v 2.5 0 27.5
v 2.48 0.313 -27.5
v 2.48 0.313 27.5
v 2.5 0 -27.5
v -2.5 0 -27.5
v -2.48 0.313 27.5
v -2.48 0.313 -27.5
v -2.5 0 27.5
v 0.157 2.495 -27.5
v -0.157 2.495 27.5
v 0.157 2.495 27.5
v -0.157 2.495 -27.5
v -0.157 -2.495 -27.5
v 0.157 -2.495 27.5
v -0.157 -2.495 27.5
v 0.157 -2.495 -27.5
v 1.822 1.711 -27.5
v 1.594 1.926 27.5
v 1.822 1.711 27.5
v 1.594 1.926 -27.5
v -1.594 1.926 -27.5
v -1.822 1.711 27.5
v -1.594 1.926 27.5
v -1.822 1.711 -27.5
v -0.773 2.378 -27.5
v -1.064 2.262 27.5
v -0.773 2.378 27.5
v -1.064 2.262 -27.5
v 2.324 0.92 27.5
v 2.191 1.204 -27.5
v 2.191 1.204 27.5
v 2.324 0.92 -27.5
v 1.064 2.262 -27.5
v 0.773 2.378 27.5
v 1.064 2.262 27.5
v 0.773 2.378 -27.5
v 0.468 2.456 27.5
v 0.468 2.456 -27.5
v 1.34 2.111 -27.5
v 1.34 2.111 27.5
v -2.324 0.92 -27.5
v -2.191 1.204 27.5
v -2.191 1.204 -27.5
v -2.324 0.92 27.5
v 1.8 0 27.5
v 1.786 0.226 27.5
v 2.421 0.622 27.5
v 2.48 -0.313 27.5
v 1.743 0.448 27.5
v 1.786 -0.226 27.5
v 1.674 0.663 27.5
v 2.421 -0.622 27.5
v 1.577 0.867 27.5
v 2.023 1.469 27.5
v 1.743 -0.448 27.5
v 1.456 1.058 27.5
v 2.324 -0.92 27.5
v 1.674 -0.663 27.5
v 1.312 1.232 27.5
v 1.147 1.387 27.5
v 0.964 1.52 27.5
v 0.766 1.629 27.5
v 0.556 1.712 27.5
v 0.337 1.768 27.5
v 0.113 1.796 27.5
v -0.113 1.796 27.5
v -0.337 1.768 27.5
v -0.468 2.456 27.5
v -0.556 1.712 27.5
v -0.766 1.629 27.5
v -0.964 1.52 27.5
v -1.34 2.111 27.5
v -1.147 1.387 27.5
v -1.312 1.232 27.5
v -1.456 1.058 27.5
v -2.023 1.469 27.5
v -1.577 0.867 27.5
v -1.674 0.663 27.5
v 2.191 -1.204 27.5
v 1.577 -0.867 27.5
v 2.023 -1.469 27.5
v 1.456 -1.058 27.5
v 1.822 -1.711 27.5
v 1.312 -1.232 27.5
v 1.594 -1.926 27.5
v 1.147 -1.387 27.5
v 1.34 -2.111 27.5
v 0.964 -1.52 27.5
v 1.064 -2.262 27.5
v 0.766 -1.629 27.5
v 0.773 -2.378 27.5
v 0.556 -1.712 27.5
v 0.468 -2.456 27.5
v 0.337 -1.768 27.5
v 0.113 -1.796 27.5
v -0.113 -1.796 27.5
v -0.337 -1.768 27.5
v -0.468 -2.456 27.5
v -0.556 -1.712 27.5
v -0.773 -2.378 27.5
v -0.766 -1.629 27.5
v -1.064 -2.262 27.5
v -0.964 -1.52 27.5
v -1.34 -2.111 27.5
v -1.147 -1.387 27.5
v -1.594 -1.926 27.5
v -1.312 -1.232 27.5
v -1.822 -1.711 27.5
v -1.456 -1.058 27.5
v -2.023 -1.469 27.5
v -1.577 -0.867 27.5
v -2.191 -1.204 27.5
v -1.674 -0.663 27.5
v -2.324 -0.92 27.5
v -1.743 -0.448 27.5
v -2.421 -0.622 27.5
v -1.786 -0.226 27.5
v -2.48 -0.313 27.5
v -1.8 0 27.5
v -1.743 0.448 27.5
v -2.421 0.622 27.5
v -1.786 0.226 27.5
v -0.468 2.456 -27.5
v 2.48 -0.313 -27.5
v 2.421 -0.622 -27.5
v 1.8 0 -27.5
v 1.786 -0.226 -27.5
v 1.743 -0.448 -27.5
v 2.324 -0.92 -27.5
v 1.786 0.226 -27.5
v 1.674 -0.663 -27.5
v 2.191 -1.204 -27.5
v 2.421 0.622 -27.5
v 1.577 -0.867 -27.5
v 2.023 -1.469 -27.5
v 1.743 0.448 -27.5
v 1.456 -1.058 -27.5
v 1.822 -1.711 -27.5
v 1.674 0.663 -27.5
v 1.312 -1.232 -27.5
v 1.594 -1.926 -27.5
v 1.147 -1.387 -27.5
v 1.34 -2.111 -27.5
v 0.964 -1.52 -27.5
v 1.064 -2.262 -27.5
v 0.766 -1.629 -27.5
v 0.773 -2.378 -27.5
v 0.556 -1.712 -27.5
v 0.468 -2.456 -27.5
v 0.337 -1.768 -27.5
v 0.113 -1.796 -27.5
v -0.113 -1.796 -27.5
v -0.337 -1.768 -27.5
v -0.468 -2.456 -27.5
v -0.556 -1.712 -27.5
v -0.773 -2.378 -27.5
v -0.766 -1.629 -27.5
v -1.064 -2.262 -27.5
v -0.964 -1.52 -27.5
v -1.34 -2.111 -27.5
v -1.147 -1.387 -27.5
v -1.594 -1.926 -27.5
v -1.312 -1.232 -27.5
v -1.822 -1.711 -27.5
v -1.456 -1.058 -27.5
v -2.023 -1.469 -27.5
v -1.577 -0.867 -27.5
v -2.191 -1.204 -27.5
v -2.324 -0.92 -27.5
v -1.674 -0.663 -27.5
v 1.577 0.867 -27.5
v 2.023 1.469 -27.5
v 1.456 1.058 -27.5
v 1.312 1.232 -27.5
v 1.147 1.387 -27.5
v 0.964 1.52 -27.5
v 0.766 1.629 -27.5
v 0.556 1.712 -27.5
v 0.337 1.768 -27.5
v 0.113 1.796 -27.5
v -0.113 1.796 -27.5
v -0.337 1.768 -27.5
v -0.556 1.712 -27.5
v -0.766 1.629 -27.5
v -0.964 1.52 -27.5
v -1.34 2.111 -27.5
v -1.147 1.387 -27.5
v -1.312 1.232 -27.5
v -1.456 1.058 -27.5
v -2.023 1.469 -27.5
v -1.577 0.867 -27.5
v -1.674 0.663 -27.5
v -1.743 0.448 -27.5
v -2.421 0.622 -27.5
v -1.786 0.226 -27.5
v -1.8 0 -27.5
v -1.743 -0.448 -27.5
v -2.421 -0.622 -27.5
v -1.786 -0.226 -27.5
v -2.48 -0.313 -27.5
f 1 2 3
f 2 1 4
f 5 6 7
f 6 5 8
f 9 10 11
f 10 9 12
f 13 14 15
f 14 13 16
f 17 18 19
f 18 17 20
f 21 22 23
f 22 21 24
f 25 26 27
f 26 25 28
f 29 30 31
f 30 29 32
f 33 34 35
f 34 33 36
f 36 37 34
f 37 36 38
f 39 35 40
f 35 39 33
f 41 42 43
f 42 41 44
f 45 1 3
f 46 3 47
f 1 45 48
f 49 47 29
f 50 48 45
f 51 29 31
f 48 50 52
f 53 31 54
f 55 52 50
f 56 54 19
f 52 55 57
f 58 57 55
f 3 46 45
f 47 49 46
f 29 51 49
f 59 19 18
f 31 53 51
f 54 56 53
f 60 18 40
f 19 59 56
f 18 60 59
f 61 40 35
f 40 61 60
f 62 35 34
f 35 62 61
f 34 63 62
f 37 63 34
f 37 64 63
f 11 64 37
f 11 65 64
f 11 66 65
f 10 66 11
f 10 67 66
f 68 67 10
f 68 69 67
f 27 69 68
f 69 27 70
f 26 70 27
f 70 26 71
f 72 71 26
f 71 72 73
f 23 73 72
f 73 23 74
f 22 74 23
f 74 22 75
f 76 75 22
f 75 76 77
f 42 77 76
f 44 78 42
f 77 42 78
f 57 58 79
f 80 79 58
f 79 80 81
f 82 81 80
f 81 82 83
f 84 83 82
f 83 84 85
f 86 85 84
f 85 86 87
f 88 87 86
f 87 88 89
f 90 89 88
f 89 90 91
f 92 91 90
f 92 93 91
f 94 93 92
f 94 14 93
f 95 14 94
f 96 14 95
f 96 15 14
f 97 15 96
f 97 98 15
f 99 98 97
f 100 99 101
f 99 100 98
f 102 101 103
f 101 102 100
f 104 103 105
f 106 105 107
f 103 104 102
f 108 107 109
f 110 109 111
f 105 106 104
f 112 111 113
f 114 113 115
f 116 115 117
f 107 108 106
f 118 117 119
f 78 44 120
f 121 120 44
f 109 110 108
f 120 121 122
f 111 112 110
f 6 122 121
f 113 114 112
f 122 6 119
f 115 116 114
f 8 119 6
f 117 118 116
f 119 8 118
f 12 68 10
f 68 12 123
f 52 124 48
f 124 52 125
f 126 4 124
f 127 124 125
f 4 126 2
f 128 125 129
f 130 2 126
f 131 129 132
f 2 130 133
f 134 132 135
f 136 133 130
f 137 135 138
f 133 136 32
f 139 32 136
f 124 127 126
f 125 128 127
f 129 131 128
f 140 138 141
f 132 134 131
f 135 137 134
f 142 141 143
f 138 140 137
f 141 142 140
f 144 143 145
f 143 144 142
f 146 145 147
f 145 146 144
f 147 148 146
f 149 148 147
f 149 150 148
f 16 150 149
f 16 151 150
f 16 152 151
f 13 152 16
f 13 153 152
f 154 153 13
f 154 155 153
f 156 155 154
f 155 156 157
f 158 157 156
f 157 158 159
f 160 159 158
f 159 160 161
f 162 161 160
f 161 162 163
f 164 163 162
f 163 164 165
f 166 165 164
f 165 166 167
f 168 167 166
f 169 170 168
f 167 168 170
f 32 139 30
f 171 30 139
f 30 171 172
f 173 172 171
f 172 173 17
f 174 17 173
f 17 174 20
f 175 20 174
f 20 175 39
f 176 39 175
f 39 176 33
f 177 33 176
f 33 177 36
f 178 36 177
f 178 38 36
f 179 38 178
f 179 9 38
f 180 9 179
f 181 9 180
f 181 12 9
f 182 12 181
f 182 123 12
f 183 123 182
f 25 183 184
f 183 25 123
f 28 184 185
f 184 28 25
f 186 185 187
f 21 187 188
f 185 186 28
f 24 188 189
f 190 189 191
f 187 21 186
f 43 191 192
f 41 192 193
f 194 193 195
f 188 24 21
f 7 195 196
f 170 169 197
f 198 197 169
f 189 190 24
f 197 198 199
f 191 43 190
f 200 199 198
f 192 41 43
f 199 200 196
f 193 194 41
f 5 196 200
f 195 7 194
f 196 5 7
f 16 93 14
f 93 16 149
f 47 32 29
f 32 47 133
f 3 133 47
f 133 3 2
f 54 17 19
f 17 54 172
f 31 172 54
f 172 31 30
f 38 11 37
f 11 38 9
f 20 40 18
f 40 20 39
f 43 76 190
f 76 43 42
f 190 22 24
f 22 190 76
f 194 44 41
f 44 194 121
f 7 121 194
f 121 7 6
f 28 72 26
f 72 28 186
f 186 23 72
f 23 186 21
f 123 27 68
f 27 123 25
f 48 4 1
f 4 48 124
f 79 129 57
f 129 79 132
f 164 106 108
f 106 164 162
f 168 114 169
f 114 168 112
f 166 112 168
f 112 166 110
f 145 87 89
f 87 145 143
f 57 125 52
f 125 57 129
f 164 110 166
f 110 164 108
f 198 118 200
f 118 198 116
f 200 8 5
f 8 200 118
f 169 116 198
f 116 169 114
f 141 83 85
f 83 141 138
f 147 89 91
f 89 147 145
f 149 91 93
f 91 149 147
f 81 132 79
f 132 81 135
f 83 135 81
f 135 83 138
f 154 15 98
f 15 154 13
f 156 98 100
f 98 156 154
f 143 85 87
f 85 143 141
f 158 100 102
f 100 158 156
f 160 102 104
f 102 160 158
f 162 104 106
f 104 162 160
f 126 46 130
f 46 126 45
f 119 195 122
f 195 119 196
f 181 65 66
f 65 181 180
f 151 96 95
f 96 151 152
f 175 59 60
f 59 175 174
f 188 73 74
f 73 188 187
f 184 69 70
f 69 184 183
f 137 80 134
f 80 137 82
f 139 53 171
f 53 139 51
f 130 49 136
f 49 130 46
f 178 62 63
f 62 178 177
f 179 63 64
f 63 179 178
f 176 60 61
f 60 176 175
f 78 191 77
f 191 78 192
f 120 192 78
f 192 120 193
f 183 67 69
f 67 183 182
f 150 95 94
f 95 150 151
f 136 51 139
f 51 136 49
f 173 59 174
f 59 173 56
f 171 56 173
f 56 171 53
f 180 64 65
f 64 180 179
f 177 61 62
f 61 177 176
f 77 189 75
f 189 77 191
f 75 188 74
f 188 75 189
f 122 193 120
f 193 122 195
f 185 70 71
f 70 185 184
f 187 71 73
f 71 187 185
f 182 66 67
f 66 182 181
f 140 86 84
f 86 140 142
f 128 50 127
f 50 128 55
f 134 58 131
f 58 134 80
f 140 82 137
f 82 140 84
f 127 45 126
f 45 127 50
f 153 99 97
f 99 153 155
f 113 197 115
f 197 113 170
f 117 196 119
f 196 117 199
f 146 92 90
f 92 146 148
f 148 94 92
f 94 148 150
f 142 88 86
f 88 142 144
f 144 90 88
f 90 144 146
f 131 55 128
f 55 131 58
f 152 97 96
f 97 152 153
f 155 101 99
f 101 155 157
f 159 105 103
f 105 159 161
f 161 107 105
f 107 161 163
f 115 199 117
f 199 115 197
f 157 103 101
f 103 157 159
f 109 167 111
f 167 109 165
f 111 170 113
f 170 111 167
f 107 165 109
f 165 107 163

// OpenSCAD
$fn = 50;


difference() {
	union() {
		translate(v = [0, 0, -27.5000000000]) {
			cylinder(h = 55, r = 2.5000000000);
		}
	}
	union() {
		translate(v = [0, 0, -100.0000000000]) {
			cylinder(h = 200, r = 1.8000000000);
		}
	}
}
